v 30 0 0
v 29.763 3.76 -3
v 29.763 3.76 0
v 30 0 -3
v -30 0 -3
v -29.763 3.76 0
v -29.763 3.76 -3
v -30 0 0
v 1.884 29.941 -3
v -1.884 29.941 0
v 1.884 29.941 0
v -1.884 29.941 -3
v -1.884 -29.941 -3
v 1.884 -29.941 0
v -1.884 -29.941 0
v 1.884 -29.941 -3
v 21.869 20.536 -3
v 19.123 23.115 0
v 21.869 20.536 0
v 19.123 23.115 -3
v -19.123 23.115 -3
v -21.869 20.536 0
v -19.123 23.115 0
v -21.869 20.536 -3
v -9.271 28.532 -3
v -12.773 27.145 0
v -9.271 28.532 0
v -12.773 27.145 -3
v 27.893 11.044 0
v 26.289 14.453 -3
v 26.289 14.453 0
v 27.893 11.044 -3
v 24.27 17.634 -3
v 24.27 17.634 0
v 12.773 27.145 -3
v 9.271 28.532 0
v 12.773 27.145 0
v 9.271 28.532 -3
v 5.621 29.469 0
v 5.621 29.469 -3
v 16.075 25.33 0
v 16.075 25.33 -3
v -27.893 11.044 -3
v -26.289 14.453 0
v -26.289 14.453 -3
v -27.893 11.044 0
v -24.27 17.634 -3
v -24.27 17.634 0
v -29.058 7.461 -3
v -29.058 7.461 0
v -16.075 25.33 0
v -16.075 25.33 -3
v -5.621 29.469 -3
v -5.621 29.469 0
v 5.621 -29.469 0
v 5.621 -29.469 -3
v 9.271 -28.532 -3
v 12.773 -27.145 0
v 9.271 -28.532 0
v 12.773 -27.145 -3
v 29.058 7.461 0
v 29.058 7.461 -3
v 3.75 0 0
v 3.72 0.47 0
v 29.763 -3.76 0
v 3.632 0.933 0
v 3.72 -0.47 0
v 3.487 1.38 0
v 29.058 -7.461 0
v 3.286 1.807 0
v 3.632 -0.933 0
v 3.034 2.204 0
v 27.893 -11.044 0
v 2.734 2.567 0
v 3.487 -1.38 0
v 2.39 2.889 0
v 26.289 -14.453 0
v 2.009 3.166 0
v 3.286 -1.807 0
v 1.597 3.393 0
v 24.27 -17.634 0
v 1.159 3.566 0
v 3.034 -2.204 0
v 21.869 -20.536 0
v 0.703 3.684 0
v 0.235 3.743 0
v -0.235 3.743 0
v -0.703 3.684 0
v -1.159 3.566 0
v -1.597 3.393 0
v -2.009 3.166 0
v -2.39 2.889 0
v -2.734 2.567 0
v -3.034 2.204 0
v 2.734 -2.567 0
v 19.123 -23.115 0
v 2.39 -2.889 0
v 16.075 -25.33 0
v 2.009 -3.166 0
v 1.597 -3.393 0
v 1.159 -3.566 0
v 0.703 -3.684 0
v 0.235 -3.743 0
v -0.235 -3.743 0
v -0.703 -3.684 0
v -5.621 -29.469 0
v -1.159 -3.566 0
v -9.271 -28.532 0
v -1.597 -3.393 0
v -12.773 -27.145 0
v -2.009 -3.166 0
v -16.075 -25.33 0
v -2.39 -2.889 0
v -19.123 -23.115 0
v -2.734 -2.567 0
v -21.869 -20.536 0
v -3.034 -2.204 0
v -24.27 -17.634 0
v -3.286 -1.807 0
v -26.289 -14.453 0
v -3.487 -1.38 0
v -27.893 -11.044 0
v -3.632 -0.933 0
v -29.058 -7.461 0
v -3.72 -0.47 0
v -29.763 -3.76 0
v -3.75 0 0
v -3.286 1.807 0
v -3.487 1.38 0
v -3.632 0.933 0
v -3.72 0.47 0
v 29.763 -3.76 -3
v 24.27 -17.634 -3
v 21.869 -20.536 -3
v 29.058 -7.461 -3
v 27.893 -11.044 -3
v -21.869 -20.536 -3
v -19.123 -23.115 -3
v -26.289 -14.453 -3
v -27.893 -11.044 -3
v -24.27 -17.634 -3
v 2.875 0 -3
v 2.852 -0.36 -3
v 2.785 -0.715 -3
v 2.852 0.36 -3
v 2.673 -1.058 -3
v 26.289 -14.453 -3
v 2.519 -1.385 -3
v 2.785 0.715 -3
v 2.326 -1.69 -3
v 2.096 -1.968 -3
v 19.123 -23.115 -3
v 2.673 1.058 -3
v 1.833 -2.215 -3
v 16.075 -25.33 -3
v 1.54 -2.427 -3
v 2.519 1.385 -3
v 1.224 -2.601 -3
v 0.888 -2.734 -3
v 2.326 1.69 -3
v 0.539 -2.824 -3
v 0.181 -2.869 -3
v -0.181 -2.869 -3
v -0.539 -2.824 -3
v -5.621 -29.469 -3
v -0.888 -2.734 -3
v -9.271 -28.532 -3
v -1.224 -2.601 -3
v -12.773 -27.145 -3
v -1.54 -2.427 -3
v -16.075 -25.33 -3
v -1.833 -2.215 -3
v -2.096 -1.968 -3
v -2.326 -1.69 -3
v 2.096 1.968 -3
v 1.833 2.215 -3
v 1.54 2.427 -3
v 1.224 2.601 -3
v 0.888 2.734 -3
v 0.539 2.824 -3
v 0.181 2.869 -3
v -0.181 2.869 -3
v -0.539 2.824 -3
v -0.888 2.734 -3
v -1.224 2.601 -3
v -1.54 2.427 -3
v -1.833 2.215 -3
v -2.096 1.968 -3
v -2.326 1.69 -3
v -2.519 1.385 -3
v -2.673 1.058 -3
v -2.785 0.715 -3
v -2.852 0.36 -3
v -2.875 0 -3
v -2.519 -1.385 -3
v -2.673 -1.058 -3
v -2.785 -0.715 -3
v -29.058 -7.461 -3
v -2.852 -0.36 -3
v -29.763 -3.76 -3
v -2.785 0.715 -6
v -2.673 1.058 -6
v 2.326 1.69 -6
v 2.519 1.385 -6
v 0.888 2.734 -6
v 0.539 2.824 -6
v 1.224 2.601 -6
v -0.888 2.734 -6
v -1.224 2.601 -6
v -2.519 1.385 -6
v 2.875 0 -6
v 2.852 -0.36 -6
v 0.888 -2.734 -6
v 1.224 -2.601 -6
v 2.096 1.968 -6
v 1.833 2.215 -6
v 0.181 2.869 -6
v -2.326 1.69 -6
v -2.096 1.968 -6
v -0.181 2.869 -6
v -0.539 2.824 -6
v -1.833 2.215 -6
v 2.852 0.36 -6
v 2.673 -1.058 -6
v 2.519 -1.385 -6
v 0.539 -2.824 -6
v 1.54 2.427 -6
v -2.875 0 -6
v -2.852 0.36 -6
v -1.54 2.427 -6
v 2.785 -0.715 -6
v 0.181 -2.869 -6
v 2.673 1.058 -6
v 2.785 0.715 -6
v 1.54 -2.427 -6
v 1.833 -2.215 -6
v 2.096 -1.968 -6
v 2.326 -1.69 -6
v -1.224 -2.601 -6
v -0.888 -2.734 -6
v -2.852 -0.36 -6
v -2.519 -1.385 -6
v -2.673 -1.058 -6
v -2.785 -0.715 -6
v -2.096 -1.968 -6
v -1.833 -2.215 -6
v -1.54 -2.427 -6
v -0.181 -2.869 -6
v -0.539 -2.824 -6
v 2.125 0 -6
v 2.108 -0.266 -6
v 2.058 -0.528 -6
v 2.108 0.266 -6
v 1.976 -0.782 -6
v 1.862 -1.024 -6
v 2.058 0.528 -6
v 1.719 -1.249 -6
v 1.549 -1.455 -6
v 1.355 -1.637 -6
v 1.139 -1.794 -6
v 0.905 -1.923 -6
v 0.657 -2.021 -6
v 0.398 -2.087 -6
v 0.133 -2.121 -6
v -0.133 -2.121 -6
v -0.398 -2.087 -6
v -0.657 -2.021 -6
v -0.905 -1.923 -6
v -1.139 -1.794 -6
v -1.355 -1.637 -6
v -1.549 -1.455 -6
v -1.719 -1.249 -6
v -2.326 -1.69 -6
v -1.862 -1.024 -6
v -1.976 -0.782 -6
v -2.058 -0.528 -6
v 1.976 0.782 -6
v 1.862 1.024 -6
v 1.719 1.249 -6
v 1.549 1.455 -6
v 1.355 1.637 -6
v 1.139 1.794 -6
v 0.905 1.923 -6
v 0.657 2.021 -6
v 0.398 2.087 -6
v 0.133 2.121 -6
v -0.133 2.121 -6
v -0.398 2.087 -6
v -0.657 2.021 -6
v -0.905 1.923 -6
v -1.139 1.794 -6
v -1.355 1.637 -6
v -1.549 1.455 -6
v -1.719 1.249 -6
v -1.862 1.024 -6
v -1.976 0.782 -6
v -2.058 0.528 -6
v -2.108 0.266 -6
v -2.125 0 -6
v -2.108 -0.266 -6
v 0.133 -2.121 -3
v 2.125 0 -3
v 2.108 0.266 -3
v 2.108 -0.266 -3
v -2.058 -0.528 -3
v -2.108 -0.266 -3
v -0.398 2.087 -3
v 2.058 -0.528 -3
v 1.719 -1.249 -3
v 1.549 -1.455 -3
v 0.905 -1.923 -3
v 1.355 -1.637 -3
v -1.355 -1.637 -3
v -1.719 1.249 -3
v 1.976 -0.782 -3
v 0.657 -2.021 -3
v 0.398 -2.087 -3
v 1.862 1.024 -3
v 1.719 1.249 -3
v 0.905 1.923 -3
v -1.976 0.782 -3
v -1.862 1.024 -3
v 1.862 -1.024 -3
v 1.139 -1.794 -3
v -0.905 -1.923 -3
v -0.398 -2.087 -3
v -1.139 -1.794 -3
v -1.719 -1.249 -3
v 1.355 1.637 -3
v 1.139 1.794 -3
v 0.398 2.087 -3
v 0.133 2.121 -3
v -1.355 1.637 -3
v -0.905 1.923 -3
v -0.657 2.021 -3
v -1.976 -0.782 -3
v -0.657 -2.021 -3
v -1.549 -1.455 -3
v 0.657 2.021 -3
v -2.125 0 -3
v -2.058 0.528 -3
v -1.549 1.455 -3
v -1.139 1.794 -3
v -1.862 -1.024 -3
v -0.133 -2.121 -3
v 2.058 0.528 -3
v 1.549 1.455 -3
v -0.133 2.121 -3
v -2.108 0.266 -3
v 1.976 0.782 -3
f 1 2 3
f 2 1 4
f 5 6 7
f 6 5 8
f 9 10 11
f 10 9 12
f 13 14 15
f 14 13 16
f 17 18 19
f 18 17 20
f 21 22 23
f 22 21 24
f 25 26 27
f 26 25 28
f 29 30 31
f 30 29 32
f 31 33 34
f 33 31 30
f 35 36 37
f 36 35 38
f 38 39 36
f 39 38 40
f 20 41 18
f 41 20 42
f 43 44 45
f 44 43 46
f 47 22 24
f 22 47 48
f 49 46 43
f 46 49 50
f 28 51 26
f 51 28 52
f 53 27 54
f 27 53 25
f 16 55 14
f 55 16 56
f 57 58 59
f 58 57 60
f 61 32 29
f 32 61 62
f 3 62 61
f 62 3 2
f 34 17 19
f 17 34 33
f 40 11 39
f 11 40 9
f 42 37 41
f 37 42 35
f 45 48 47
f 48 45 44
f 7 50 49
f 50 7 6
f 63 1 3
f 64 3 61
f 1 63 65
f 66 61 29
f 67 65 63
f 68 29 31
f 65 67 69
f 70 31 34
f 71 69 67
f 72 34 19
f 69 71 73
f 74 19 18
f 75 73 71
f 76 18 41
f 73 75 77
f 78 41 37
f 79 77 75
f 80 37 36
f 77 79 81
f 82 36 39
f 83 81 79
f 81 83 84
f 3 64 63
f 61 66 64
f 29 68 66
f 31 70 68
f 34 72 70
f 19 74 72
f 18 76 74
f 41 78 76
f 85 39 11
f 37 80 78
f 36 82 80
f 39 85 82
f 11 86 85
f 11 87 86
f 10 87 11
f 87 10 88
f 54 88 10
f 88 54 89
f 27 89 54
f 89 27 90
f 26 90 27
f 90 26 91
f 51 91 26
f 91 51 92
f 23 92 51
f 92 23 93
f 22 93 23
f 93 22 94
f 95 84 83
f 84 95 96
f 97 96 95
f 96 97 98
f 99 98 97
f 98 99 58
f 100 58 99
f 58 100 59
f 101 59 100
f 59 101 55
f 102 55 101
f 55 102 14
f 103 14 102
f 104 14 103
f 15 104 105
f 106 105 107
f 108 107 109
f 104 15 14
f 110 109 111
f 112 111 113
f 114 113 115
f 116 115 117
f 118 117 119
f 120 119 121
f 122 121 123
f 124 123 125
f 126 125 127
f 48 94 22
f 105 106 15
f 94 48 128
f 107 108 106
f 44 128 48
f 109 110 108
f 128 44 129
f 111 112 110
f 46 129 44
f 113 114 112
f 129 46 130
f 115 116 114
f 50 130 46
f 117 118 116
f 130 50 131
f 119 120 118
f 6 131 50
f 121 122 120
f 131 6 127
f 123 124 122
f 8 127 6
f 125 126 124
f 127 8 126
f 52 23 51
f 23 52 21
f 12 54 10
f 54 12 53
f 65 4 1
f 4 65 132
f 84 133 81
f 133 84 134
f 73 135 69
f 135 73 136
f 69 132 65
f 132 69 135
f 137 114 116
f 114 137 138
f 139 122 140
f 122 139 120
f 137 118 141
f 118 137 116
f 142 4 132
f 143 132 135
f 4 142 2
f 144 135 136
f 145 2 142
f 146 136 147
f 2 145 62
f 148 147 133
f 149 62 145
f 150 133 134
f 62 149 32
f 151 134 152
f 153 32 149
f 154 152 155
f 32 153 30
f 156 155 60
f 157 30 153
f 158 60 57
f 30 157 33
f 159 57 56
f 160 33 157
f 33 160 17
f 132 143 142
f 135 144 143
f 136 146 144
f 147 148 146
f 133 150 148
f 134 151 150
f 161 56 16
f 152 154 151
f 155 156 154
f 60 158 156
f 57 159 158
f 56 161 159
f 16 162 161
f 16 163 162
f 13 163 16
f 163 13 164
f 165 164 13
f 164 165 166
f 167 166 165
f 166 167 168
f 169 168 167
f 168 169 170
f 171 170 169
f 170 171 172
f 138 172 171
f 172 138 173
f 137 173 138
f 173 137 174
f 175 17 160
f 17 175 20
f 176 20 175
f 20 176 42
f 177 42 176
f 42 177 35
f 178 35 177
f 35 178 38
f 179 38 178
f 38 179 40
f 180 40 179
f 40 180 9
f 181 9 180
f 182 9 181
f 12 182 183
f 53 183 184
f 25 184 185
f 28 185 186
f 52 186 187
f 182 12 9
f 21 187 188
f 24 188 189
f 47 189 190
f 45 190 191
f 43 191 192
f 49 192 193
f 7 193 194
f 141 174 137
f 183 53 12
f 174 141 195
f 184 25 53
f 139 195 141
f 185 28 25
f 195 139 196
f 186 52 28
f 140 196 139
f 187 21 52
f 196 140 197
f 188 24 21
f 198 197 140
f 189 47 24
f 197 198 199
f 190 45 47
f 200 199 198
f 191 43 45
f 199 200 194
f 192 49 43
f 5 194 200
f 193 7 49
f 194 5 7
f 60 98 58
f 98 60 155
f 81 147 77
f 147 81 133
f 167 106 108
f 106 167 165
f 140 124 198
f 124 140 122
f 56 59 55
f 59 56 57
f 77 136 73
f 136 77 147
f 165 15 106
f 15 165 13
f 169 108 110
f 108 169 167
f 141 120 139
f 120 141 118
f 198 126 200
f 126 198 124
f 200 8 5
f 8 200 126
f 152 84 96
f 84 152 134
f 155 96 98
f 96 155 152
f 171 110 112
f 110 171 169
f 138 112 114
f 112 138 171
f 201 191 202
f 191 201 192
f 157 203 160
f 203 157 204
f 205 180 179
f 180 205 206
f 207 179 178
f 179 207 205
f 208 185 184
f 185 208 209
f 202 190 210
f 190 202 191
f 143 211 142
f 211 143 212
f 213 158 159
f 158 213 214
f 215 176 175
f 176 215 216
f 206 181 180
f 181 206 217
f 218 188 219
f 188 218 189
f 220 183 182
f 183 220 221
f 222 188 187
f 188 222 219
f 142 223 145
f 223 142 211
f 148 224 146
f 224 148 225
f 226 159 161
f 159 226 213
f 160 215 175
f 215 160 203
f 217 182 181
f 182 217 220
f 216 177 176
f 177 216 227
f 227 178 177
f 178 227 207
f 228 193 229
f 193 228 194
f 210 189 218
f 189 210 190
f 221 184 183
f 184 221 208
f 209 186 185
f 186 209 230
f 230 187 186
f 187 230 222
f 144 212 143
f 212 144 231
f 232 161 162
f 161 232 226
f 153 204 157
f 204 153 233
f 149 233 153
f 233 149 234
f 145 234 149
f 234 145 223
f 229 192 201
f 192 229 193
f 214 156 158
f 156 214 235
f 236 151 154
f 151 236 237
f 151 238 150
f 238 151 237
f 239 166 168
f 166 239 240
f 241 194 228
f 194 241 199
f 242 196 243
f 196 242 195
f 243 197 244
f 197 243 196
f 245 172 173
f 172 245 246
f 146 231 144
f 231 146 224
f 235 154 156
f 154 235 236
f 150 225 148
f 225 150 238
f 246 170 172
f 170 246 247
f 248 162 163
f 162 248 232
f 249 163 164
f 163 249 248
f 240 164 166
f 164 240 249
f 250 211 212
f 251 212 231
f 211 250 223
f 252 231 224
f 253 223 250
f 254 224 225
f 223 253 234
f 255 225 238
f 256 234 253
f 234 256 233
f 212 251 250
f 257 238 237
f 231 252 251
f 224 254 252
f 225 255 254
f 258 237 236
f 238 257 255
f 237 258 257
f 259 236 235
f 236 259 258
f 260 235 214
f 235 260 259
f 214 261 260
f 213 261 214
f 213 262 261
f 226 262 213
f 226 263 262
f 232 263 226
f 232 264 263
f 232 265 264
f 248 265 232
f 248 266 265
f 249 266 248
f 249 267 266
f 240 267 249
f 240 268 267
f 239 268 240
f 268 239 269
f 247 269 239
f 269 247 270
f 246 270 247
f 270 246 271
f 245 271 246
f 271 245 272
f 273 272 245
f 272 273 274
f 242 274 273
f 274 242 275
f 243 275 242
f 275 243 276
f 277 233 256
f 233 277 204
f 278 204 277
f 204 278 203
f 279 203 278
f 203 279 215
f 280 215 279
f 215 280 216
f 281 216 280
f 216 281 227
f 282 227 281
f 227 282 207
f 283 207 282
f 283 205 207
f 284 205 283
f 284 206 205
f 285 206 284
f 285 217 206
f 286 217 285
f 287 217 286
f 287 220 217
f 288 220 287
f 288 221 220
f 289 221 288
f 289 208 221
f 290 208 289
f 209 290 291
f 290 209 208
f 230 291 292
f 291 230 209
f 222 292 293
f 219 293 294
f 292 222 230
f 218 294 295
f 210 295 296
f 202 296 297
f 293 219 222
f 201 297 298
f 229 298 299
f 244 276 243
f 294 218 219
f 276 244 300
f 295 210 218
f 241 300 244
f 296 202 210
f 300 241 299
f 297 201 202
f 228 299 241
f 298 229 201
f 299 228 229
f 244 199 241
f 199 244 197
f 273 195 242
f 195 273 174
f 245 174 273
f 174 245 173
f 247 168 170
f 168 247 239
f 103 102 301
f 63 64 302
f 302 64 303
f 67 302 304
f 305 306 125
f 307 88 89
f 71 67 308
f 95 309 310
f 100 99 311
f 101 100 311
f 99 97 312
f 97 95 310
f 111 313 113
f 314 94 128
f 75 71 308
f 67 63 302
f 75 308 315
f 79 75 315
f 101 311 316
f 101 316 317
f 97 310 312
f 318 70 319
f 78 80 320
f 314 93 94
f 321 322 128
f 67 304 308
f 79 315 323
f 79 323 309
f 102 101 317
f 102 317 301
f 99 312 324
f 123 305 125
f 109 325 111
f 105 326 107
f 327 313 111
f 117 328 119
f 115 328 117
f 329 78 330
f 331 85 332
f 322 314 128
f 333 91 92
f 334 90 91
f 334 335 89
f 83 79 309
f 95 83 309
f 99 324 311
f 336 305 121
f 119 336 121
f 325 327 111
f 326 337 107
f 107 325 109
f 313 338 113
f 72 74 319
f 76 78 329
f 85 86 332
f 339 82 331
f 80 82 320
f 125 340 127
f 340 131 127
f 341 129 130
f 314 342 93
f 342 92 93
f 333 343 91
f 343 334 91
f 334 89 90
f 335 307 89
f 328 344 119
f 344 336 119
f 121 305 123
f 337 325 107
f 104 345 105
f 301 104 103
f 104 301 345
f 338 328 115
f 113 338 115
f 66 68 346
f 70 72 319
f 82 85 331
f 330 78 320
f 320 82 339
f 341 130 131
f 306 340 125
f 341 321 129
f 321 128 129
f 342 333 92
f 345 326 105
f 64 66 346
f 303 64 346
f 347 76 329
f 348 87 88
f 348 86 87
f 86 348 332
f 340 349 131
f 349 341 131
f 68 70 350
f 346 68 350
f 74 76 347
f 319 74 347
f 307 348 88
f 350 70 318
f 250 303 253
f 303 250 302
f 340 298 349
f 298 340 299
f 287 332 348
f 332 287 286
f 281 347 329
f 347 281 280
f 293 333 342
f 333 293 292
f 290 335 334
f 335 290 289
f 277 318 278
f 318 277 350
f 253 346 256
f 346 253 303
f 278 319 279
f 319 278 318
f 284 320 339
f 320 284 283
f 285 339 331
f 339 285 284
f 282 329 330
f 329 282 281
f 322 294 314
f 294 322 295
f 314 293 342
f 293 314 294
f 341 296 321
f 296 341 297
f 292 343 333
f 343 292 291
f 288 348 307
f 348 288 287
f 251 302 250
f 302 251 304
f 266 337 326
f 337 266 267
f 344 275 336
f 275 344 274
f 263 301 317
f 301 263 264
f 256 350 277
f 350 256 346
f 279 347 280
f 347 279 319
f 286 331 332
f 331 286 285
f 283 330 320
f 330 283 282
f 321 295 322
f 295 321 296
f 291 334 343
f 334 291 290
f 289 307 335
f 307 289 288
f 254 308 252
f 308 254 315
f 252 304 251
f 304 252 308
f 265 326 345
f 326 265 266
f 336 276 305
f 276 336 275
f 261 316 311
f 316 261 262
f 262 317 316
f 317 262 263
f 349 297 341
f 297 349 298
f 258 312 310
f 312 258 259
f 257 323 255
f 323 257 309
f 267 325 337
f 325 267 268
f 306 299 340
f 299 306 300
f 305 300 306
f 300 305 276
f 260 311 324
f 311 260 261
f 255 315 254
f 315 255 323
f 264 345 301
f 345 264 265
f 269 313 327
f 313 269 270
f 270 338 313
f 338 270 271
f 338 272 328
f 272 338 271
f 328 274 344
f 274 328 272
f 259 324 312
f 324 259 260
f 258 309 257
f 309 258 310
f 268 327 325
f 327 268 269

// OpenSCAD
$fn = 50;

difference() {
	union() {
		translate(v = [0, 0, -3.0]) {
			cylinder(h = 3, r = 30.0);
		}
		#translate(v = [0, 0, -6.0]) {
			cylinder(h = 6, r = 2.875);
		}
	}
	union() {
		translate(v = [0, 0, 0]) {
			rotate(a = [0, 0, 0]) {
				difference() {
					union() {
						translate(v = [0, 0, -6.0]) {
							cylinder(h = 6, r = 2.0);
						}
						translate(v = [0, 0, -3]) {
							cylinder(h = 3, r1 = 2.125, r2 = 3.75);
						}
						translate(v = [0, 0, -6.0]) {
							cylinder(h = 6, r = 2.125);
						}
						translate(v = [0, 0, -6.0]) {
							cylinder(h = 6, r = 2.0);
						}
					}
					union();
				}
			}
		}
	}
}
